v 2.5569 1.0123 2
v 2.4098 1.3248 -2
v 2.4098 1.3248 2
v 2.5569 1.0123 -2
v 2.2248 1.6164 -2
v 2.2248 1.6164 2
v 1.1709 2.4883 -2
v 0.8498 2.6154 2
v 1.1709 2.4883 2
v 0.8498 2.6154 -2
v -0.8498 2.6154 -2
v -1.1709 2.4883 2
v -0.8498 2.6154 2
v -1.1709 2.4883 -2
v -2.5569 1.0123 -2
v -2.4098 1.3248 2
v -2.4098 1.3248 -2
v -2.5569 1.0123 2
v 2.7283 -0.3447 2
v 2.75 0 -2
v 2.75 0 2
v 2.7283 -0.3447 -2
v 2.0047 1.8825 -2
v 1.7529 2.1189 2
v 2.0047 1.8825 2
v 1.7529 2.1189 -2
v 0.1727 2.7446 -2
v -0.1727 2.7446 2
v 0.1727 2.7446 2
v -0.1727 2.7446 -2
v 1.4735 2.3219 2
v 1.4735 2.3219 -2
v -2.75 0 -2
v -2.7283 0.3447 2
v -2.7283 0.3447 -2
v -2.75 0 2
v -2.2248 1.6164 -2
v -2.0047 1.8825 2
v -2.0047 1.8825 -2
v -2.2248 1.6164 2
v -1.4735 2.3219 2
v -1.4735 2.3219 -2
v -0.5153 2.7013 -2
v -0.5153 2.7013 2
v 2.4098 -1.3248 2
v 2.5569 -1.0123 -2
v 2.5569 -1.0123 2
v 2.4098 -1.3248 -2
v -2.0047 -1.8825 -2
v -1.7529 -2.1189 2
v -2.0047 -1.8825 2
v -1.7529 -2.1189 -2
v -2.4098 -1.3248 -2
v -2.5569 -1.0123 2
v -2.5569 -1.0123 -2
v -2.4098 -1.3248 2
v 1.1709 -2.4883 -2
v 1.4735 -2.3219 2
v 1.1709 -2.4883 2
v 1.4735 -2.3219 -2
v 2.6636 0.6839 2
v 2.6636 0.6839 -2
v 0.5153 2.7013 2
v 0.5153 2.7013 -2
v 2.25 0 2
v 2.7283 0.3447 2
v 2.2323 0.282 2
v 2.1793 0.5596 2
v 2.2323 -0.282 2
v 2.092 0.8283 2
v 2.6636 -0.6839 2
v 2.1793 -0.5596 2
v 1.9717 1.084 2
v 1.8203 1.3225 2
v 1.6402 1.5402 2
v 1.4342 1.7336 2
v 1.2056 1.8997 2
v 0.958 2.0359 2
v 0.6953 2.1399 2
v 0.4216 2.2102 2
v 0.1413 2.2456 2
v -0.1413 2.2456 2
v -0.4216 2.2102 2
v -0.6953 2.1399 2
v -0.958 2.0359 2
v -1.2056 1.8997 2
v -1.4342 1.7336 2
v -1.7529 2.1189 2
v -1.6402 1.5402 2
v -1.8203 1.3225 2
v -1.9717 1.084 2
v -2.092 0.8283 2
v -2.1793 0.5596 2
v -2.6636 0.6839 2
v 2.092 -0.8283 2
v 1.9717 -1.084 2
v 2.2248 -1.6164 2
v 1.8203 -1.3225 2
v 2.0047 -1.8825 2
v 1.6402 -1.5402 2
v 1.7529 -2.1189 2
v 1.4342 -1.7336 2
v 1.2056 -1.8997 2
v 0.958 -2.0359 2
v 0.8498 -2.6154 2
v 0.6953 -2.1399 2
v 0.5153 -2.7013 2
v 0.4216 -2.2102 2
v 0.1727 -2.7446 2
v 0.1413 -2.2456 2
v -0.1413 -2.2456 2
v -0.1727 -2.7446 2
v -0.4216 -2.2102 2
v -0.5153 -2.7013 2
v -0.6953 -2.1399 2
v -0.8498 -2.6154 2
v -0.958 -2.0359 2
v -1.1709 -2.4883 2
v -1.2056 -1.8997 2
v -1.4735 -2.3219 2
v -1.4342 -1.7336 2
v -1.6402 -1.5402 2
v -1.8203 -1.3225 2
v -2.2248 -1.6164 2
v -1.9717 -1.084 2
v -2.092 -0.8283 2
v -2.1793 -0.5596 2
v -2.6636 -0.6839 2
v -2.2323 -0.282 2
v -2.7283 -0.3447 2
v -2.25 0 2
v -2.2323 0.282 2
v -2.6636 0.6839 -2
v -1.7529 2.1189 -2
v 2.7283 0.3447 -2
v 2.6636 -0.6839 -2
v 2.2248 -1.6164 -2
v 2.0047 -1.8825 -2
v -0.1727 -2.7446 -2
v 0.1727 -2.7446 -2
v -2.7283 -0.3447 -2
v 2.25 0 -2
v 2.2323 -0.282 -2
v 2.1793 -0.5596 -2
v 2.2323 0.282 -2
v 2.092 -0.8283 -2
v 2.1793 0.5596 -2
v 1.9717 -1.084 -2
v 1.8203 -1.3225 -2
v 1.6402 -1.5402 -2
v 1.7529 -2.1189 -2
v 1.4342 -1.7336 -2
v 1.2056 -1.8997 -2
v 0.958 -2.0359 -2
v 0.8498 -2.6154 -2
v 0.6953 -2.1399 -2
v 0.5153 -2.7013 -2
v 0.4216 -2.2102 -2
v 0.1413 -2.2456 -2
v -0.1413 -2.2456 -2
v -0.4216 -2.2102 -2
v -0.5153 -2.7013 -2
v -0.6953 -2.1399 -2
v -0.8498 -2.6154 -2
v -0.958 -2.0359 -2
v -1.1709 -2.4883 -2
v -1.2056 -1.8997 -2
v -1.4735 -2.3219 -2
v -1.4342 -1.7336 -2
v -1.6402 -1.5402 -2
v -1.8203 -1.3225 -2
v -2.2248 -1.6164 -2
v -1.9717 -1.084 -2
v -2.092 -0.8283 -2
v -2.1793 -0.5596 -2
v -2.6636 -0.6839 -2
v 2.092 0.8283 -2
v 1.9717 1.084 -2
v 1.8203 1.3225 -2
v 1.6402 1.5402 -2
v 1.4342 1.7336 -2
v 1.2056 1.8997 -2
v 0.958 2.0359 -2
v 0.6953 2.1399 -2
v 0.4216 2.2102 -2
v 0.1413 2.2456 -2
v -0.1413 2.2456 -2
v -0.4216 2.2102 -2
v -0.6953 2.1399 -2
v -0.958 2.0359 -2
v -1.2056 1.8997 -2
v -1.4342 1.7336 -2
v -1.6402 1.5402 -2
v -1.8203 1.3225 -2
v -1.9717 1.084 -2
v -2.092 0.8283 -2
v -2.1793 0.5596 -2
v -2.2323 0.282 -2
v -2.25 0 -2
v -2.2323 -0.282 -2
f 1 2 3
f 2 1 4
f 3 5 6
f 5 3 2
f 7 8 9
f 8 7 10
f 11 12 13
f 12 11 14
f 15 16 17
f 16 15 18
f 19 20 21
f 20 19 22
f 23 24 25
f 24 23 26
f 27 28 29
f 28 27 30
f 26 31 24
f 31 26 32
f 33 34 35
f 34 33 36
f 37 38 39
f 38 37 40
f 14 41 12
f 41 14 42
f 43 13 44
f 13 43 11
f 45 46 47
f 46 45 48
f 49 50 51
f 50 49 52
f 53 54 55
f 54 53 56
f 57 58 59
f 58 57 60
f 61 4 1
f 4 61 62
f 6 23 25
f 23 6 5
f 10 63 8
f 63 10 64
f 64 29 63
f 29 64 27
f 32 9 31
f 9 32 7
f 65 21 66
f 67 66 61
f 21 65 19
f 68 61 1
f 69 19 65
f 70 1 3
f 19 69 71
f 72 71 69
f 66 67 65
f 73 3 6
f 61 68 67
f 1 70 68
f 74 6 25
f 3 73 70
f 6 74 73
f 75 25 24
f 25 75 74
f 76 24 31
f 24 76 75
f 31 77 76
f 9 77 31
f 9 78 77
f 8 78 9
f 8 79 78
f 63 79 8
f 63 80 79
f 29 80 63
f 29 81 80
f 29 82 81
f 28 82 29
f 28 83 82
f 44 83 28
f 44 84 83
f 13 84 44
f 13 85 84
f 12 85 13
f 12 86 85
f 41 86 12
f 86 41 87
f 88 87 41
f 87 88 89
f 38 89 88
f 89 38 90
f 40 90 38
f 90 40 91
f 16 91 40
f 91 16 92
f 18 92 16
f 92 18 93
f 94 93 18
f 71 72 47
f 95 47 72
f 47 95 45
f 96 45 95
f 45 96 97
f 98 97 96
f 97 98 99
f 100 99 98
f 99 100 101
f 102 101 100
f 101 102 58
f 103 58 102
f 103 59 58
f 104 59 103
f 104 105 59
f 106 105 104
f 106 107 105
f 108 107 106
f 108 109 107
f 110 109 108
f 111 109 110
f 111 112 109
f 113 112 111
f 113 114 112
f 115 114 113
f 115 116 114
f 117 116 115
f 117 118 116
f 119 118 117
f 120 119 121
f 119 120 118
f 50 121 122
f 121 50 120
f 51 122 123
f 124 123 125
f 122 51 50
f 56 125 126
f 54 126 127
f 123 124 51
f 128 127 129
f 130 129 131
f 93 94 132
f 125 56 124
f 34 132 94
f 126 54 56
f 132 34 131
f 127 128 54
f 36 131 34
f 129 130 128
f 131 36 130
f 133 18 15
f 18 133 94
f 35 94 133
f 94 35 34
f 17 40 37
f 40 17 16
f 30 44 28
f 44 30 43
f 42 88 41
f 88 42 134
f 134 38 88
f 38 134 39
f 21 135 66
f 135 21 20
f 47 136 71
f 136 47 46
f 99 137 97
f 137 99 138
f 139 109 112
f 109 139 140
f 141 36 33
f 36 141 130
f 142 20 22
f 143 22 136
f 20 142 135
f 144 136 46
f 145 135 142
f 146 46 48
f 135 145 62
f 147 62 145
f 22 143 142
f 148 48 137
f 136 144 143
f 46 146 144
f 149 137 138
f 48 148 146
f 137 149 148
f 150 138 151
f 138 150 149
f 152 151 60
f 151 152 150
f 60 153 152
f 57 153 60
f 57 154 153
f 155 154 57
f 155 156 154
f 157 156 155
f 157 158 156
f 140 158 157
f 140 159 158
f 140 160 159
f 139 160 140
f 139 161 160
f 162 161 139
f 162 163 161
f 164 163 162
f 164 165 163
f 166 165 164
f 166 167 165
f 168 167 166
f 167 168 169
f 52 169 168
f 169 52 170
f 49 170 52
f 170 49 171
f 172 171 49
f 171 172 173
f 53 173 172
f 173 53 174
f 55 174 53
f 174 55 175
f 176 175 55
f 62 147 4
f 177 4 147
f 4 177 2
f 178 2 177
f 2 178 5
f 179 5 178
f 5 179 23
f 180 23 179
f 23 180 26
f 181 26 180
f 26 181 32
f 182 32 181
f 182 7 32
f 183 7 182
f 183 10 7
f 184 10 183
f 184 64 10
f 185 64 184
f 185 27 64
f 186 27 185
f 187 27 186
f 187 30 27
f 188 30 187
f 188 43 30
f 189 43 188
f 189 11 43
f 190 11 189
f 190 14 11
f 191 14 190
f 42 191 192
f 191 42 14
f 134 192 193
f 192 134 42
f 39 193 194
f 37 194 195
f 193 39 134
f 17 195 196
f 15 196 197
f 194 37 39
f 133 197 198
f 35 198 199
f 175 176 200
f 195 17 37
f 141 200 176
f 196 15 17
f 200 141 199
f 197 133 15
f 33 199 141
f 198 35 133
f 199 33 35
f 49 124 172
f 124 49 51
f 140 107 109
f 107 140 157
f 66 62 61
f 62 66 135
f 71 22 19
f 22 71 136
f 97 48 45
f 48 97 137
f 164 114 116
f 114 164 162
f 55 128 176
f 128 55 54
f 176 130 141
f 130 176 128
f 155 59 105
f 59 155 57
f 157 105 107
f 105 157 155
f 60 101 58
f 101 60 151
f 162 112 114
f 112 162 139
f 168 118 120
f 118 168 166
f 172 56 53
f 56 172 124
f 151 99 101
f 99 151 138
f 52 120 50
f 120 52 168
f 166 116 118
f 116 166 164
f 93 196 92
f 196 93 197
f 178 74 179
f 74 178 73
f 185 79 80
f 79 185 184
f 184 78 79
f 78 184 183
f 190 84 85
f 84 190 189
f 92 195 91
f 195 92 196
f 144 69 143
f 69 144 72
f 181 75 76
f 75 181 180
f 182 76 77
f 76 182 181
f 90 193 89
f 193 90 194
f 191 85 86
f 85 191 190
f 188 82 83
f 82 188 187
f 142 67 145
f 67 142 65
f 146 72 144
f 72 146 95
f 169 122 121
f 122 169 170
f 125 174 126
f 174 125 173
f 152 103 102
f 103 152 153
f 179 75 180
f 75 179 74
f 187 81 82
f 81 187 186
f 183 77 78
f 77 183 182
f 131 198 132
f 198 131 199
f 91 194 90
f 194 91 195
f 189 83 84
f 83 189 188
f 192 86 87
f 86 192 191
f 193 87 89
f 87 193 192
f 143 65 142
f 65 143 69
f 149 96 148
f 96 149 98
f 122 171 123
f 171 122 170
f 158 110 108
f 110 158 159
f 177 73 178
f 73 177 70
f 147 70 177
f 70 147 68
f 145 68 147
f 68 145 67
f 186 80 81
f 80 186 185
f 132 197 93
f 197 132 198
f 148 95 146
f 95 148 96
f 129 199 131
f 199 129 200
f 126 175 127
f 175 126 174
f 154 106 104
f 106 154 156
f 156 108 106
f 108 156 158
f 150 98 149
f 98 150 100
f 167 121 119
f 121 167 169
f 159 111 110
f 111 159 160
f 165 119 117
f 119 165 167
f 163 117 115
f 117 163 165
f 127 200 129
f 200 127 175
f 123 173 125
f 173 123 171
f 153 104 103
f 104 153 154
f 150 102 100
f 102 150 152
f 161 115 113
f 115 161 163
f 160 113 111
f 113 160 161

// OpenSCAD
$fn = 50;


difference() {
	union() {
		translate(v = [0, 0, -2.0000000000]) {
			cylinder(h = 4, r = 2.7500000000);
		}
	}
	union() {
		translate(v = [0, 0, -100.0000000000]) {
			cylinder(h = 200, r = 2.2500000000);
		}
	}
}
